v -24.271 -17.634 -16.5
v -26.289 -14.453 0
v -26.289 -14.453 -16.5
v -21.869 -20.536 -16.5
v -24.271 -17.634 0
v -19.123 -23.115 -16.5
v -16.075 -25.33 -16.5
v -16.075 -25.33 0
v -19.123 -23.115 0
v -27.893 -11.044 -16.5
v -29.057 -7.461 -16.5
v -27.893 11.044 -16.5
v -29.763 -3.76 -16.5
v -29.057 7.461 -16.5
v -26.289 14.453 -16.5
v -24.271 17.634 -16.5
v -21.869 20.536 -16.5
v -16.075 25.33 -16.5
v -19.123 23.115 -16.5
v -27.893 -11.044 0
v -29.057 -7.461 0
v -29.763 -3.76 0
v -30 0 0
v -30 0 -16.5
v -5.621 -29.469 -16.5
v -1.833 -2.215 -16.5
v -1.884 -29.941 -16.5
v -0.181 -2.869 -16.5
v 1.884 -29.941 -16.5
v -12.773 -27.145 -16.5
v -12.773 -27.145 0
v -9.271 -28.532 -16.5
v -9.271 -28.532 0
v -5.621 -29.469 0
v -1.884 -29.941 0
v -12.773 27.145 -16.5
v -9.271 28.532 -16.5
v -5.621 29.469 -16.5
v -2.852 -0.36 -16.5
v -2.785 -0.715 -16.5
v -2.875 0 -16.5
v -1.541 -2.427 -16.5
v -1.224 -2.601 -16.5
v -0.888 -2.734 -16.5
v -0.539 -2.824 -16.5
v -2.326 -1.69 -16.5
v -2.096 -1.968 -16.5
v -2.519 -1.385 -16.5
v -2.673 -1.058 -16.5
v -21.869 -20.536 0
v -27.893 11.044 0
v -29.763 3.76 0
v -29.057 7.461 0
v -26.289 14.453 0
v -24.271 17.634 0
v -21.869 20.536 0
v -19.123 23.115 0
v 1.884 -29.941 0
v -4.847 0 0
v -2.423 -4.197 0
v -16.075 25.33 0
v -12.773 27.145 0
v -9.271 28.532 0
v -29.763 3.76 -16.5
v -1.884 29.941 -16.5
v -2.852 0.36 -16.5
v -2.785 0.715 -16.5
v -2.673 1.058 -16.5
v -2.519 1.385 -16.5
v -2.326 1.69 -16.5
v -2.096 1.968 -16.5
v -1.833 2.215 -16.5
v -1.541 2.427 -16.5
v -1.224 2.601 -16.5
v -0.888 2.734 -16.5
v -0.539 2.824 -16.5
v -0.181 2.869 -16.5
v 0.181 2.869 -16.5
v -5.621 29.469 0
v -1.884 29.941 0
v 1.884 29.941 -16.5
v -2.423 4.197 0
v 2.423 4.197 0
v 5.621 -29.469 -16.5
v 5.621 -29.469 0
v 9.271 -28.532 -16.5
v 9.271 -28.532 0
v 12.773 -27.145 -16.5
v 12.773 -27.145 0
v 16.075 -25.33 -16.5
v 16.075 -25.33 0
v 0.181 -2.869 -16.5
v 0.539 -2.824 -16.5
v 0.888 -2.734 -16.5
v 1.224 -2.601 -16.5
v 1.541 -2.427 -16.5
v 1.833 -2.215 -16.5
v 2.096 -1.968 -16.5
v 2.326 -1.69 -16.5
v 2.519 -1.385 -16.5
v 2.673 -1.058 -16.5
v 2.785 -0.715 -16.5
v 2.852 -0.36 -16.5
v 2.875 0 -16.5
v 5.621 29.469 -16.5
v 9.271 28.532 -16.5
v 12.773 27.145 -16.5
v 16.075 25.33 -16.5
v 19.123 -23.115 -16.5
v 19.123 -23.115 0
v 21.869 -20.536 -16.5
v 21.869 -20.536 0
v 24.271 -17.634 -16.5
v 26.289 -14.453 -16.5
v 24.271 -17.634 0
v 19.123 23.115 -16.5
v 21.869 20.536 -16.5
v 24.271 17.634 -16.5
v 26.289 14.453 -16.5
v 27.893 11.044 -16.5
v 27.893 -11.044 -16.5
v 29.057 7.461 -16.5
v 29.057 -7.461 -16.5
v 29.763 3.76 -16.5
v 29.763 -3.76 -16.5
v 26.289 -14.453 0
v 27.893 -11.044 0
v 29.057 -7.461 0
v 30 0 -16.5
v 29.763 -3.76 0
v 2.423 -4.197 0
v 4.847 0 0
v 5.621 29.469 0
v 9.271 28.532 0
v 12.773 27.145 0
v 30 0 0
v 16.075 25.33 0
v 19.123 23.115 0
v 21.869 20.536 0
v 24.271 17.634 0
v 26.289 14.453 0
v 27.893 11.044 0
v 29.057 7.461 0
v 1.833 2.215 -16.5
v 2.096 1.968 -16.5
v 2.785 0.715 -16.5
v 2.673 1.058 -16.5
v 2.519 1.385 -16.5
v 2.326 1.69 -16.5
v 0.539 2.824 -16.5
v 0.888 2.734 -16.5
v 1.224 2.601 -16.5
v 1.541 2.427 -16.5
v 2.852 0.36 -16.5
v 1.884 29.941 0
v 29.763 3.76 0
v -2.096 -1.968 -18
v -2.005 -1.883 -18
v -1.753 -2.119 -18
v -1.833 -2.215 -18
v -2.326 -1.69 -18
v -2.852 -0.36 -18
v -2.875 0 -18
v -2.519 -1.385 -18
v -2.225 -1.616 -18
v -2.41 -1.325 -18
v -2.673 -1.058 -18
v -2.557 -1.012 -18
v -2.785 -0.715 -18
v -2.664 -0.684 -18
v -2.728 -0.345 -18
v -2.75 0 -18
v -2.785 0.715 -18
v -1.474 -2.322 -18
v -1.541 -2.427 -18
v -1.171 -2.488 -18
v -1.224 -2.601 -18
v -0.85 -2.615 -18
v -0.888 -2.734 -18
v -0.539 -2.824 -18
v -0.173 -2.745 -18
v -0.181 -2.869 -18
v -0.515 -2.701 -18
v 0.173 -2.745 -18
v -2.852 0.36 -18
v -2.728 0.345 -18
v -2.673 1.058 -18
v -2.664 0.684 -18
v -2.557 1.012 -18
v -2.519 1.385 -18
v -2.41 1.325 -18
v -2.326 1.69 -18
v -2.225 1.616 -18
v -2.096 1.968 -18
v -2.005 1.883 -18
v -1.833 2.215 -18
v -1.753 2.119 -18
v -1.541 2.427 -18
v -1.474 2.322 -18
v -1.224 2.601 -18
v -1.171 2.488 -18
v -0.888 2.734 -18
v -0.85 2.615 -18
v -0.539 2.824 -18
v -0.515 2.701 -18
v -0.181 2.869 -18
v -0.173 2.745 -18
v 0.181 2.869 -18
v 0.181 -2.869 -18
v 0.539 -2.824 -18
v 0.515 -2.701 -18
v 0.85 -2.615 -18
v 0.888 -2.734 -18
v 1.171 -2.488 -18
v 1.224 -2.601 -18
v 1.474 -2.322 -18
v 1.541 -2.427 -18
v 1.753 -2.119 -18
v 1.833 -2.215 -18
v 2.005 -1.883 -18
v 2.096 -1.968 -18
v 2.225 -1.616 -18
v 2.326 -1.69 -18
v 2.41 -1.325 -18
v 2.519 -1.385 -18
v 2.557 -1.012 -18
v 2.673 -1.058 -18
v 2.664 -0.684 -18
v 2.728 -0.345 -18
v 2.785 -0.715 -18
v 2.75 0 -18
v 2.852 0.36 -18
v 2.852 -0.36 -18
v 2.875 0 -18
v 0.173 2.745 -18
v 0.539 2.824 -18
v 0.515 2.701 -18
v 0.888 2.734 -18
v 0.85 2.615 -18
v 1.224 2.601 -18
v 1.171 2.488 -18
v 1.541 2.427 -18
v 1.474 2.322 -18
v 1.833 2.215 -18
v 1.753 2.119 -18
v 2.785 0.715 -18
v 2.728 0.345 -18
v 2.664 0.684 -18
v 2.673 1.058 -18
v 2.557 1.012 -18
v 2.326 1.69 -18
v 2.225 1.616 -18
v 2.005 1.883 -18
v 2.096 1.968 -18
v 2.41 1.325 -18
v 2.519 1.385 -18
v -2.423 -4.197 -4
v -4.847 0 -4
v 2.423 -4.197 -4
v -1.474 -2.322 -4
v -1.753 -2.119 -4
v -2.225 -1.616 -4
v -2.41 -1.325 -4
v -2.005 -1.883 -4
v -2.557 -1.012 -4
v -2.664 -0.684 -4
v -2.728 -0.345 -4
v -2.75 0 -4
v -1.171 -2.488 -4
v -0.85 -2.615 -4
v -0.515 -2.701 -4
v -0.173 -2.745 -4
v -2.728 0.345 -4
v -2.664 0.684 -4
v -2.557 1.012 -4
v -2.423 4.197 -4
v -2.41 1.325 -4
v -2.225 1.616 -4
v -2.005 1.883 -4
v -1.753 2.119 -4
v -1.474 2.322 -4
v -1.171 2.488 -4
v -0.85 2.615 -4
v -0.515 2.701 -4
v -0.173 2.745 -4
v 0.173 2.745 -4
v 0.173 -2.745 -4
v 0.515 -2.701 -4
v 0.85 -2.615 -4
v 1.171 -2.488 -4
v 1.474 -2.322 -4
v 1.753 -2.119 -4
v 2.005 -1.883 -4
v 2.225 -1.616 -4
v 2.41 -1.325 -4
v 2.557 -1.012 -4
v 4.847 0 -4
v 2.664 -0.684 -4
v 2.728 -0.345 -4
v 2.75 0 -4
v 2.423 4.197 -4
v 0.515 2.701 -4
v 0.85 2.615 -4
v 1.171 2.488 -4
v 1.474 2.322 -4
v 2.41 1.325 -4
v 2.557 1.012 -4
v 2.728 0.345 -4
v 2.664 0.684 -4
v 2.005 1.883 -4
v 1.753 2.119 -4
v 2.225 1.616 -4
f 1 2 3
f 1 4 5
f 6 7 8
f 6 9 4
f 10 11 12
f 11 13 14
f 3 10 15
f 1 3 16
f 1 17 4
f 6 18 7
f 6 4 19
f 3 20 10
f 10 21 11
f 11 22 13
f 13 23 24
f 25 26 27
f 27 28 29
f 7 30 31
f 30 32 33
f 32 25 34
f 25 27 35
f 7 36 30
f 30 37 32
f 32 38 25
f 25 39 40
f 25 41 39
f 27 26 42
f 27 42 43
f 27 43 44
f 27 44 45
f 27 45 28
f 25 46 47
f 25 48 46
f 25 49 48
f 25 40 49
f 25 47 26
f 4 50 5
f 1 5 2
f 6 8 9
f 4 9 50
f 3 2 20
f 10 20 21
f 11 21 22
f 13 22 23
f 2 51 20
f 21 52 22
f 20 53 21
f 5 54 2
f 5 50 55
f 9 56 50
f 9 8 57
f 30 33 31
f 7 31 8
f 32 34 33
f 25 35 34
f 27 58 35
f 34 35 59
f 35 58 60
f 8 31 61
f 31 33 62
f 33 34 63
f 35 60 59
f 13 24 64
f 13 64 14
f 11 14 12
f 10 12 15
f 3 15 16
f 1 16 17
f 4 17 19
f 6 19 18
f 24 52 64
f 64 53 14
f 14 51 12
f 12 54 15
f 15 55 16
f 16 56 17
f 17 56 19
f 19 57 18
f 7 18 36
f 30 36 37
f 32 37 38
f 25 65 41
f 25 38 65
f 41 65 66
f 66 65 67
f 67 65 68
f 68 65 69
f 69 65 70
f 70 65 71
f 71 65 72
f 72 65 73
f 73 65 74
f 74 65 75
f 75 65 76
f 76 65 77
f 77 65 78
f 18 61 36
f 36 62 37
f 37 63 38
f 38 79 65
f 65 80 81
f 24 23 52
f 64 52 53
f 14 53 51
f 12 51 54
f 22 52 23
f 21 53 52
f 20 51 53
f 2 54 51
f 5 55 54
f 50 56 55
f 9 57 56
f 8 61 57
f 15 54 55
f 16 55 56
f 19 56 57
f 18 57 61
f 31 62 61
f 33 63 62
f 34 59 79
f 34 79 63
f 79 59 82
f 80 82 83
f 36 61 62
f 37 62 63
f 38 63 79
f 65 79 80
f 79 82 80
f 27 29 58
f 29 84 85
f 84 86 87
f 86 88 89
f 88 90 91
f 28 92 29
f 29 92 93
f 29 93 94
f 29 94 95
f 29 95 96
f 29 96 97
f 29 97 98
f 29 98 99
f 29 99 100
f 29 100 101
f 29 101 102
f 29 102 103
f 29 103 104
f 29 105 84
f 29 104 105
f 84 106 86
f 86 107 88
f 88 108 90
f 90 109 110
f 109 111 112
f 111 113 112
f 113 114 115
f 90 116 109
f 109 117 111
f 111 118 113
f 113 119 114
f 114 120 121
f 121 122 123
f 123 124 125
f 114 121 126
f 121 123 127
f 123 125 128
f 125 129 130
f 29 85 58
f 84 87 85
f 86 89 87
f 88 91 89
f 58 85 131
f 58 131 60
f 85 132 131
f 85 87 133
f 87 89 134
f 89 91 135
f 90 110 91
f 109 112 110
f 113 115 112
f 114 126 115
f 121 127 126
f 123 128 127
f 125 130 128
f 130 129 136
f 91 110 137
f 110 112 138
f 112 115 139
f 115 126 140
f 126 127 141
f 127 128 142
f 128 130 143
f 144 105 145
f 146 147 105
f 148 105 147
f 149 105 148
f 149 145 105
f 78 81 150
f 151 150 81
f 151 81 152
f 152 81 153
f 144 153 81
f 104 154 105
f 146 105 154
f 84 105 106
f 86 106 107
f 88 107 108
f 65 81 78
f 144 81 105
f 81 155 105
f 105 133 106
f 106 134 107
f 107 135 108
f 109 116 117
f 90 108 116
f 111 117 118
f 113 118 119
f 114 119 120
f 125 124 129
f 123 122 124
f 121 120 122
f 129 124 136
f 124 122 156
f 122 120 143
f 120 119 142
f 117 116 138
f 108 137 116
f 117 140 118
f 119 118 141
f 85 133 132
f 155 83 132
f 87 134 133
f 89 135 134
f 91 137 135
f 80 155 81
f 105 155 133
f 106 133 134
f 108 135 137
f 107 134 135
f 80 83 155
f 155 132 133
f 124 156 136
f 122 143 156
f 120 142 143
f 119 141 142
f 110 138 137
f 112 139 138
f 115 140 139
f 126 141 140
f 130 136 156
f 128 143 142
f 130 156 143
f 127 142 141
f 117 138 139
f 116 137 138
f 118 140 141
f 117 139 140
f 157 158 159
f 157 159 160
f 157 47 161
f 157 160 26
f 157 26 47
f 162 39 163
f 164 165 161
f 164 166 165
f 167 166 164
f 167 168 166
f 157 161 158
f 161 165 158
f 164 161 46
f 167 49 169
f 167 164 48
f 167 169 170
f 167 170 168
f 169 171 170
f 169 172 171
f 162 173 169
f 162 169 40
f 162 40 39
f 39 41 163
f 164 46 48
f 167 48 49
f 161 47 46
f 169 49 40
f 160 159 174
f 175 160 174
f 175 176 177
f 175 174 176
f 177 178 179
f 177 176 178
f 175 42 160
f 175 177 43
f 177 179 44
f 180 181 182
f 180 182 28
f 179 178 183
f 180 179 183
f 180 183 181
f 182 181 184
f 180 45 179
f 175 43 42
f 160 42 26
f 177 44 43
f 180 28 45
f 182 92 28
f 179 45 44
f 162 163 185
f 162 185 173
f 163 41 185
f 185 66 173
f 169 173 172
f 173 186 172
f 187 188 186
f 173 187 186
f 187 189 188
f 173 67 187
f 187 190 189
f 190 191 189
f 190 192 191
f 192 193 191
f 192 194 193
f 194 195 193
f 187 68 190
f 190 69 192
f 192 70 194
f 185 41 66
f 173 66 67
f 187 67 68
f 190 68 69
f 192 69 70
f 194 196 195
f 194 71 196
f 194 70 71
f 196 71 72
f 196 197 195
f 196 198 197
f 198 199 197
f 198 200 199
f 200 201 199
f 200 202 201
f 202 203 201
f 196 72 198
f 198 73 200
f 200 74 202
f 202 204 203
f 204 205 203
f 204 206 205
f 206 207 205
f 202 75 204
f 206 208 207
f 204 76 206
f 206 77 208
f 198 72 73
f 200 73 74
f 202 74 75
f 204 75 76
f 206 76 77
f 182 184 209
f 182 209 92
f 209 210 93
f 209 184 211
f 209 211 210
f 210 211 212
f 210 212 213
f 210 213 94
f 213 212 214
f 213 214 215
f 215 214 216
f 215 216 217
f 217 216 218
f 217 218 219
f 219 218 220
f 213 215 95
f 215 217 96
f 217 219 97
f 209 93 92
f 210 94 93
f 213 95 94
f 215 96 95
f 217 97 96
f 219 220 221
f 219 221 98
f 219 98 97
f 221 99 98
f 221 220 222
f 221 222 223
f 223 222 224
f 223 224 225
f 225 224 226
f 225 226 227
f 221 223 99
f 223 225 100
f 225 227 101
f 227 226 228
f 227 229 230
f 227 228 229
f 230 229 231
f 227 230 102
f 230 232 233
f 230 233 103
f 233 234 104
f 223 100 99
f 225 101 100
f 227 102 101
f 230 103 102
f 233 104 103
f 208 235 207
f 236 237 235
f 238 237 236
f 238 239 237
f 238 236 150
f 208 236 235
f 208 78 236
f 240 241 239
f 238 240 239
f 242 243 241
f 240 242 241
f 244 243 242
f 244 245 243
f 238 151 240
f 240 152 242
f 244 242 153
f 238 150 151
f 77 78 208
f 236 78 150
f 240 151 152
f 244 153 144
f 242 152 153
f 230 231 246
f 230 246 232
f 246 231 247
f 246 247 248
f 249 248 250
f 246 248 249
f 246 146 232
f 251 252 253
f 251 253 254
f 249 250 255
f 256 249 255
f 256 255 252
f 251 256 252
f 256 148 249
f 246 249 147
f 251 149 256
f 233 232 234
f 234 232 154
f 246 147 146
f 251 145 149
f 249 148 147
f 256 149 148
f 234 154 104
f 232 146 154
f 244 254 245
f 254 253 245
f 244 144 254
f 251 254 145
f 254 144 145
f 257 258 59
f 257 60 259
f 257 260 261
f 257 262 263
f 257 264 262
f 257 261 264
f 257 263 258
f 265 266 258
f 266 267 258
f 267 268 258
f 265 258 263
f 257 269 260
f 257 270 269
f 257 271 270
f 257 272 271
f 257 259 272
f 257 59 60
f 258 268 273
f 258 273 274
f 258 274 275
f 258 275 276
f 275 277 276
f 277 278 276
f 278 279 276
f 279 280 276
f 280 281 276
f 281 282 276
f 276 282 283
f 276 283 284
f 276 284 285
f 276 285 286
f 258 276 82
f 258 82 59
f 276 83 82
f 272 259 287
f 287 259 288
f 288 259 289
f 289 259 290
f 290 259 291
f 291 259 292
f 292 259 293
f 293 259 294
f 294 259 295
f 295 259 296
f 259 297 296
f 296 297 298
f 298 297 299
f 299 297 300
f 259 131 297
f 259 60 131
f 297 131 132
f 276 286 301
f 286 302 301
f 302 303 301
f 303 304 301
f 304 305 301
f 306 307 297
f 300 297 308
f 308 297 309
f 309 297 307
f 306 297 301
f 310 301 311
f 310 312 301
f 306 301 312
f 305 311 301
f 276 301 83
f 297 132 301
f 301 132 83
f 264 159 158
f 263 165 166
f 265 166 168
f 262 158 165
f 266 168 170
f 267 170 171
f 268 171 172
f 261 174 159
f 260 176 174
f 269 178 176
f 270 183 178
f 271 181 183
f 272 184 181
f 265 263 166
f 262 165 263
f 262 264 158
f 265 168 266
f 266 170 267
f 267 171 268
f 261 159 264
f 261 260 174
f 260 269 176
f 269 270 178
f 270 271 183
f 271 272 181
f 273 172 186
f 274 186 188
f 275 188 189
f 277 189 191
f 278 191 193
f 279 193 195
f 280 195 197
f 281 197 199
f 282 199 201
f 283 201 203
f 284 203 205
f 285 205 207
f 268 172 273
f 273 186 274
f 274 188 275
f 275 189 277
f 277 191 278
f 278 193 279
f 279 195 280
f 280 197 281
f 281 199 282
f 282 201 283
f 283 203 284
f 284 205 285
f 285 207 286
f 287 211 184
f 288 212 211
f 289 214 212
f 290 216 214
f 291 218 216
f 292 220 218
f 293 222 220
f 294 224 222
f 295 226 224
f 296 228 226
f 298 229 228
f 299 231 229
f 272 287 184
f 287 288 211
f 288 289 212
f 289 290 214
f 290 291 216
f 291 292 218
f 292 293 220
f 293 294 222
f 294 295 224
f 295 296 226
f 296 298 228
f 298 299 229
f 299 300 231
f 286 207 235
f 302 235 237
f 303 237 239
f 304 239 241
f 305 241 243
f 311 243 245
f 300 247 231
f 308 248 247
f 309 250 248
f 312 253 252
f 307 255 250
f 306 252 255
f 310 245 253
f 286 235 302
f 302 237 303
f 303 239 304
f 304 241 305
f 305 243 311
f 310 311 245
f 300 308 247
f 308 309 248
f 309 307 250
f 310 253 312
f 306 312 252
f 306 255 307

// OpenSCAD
$fn = 50;

difference() {
	union() {
		translate(v = [0, 0, -16.5]) {
			cylinder(h = 16.5, r = 30.0);
		}
		#translate(v = [0, 0, -18.0]) {
			cylinder(h = 18, r = 2.875);
		}
	}
	union() {
		translate(v = [0, 0, 0]) {
			rotate(a = [0, 0, 0]) {
				difference() {
					union() {
						translate(v = [0, 0, -4]) {
							linear_extrude(height = 4) {
								polygon(points = [[4.8468, 0.0], [2.4234000000000004, 4.197451927062417], [-2.423399999999999, 4.197451927062417], [-4.8468, 5.935618106107392e-16], [-2.423400000000002, -4.197451927062416], [2.423399999999997, -4.197451927062419]]);
							}
						}
					}
					union();
				}
			}
		}
		#translate(v = [0, 0, -100.0]) {
			cylinder(h = 200, r = 2.75);
		}
	}
}
